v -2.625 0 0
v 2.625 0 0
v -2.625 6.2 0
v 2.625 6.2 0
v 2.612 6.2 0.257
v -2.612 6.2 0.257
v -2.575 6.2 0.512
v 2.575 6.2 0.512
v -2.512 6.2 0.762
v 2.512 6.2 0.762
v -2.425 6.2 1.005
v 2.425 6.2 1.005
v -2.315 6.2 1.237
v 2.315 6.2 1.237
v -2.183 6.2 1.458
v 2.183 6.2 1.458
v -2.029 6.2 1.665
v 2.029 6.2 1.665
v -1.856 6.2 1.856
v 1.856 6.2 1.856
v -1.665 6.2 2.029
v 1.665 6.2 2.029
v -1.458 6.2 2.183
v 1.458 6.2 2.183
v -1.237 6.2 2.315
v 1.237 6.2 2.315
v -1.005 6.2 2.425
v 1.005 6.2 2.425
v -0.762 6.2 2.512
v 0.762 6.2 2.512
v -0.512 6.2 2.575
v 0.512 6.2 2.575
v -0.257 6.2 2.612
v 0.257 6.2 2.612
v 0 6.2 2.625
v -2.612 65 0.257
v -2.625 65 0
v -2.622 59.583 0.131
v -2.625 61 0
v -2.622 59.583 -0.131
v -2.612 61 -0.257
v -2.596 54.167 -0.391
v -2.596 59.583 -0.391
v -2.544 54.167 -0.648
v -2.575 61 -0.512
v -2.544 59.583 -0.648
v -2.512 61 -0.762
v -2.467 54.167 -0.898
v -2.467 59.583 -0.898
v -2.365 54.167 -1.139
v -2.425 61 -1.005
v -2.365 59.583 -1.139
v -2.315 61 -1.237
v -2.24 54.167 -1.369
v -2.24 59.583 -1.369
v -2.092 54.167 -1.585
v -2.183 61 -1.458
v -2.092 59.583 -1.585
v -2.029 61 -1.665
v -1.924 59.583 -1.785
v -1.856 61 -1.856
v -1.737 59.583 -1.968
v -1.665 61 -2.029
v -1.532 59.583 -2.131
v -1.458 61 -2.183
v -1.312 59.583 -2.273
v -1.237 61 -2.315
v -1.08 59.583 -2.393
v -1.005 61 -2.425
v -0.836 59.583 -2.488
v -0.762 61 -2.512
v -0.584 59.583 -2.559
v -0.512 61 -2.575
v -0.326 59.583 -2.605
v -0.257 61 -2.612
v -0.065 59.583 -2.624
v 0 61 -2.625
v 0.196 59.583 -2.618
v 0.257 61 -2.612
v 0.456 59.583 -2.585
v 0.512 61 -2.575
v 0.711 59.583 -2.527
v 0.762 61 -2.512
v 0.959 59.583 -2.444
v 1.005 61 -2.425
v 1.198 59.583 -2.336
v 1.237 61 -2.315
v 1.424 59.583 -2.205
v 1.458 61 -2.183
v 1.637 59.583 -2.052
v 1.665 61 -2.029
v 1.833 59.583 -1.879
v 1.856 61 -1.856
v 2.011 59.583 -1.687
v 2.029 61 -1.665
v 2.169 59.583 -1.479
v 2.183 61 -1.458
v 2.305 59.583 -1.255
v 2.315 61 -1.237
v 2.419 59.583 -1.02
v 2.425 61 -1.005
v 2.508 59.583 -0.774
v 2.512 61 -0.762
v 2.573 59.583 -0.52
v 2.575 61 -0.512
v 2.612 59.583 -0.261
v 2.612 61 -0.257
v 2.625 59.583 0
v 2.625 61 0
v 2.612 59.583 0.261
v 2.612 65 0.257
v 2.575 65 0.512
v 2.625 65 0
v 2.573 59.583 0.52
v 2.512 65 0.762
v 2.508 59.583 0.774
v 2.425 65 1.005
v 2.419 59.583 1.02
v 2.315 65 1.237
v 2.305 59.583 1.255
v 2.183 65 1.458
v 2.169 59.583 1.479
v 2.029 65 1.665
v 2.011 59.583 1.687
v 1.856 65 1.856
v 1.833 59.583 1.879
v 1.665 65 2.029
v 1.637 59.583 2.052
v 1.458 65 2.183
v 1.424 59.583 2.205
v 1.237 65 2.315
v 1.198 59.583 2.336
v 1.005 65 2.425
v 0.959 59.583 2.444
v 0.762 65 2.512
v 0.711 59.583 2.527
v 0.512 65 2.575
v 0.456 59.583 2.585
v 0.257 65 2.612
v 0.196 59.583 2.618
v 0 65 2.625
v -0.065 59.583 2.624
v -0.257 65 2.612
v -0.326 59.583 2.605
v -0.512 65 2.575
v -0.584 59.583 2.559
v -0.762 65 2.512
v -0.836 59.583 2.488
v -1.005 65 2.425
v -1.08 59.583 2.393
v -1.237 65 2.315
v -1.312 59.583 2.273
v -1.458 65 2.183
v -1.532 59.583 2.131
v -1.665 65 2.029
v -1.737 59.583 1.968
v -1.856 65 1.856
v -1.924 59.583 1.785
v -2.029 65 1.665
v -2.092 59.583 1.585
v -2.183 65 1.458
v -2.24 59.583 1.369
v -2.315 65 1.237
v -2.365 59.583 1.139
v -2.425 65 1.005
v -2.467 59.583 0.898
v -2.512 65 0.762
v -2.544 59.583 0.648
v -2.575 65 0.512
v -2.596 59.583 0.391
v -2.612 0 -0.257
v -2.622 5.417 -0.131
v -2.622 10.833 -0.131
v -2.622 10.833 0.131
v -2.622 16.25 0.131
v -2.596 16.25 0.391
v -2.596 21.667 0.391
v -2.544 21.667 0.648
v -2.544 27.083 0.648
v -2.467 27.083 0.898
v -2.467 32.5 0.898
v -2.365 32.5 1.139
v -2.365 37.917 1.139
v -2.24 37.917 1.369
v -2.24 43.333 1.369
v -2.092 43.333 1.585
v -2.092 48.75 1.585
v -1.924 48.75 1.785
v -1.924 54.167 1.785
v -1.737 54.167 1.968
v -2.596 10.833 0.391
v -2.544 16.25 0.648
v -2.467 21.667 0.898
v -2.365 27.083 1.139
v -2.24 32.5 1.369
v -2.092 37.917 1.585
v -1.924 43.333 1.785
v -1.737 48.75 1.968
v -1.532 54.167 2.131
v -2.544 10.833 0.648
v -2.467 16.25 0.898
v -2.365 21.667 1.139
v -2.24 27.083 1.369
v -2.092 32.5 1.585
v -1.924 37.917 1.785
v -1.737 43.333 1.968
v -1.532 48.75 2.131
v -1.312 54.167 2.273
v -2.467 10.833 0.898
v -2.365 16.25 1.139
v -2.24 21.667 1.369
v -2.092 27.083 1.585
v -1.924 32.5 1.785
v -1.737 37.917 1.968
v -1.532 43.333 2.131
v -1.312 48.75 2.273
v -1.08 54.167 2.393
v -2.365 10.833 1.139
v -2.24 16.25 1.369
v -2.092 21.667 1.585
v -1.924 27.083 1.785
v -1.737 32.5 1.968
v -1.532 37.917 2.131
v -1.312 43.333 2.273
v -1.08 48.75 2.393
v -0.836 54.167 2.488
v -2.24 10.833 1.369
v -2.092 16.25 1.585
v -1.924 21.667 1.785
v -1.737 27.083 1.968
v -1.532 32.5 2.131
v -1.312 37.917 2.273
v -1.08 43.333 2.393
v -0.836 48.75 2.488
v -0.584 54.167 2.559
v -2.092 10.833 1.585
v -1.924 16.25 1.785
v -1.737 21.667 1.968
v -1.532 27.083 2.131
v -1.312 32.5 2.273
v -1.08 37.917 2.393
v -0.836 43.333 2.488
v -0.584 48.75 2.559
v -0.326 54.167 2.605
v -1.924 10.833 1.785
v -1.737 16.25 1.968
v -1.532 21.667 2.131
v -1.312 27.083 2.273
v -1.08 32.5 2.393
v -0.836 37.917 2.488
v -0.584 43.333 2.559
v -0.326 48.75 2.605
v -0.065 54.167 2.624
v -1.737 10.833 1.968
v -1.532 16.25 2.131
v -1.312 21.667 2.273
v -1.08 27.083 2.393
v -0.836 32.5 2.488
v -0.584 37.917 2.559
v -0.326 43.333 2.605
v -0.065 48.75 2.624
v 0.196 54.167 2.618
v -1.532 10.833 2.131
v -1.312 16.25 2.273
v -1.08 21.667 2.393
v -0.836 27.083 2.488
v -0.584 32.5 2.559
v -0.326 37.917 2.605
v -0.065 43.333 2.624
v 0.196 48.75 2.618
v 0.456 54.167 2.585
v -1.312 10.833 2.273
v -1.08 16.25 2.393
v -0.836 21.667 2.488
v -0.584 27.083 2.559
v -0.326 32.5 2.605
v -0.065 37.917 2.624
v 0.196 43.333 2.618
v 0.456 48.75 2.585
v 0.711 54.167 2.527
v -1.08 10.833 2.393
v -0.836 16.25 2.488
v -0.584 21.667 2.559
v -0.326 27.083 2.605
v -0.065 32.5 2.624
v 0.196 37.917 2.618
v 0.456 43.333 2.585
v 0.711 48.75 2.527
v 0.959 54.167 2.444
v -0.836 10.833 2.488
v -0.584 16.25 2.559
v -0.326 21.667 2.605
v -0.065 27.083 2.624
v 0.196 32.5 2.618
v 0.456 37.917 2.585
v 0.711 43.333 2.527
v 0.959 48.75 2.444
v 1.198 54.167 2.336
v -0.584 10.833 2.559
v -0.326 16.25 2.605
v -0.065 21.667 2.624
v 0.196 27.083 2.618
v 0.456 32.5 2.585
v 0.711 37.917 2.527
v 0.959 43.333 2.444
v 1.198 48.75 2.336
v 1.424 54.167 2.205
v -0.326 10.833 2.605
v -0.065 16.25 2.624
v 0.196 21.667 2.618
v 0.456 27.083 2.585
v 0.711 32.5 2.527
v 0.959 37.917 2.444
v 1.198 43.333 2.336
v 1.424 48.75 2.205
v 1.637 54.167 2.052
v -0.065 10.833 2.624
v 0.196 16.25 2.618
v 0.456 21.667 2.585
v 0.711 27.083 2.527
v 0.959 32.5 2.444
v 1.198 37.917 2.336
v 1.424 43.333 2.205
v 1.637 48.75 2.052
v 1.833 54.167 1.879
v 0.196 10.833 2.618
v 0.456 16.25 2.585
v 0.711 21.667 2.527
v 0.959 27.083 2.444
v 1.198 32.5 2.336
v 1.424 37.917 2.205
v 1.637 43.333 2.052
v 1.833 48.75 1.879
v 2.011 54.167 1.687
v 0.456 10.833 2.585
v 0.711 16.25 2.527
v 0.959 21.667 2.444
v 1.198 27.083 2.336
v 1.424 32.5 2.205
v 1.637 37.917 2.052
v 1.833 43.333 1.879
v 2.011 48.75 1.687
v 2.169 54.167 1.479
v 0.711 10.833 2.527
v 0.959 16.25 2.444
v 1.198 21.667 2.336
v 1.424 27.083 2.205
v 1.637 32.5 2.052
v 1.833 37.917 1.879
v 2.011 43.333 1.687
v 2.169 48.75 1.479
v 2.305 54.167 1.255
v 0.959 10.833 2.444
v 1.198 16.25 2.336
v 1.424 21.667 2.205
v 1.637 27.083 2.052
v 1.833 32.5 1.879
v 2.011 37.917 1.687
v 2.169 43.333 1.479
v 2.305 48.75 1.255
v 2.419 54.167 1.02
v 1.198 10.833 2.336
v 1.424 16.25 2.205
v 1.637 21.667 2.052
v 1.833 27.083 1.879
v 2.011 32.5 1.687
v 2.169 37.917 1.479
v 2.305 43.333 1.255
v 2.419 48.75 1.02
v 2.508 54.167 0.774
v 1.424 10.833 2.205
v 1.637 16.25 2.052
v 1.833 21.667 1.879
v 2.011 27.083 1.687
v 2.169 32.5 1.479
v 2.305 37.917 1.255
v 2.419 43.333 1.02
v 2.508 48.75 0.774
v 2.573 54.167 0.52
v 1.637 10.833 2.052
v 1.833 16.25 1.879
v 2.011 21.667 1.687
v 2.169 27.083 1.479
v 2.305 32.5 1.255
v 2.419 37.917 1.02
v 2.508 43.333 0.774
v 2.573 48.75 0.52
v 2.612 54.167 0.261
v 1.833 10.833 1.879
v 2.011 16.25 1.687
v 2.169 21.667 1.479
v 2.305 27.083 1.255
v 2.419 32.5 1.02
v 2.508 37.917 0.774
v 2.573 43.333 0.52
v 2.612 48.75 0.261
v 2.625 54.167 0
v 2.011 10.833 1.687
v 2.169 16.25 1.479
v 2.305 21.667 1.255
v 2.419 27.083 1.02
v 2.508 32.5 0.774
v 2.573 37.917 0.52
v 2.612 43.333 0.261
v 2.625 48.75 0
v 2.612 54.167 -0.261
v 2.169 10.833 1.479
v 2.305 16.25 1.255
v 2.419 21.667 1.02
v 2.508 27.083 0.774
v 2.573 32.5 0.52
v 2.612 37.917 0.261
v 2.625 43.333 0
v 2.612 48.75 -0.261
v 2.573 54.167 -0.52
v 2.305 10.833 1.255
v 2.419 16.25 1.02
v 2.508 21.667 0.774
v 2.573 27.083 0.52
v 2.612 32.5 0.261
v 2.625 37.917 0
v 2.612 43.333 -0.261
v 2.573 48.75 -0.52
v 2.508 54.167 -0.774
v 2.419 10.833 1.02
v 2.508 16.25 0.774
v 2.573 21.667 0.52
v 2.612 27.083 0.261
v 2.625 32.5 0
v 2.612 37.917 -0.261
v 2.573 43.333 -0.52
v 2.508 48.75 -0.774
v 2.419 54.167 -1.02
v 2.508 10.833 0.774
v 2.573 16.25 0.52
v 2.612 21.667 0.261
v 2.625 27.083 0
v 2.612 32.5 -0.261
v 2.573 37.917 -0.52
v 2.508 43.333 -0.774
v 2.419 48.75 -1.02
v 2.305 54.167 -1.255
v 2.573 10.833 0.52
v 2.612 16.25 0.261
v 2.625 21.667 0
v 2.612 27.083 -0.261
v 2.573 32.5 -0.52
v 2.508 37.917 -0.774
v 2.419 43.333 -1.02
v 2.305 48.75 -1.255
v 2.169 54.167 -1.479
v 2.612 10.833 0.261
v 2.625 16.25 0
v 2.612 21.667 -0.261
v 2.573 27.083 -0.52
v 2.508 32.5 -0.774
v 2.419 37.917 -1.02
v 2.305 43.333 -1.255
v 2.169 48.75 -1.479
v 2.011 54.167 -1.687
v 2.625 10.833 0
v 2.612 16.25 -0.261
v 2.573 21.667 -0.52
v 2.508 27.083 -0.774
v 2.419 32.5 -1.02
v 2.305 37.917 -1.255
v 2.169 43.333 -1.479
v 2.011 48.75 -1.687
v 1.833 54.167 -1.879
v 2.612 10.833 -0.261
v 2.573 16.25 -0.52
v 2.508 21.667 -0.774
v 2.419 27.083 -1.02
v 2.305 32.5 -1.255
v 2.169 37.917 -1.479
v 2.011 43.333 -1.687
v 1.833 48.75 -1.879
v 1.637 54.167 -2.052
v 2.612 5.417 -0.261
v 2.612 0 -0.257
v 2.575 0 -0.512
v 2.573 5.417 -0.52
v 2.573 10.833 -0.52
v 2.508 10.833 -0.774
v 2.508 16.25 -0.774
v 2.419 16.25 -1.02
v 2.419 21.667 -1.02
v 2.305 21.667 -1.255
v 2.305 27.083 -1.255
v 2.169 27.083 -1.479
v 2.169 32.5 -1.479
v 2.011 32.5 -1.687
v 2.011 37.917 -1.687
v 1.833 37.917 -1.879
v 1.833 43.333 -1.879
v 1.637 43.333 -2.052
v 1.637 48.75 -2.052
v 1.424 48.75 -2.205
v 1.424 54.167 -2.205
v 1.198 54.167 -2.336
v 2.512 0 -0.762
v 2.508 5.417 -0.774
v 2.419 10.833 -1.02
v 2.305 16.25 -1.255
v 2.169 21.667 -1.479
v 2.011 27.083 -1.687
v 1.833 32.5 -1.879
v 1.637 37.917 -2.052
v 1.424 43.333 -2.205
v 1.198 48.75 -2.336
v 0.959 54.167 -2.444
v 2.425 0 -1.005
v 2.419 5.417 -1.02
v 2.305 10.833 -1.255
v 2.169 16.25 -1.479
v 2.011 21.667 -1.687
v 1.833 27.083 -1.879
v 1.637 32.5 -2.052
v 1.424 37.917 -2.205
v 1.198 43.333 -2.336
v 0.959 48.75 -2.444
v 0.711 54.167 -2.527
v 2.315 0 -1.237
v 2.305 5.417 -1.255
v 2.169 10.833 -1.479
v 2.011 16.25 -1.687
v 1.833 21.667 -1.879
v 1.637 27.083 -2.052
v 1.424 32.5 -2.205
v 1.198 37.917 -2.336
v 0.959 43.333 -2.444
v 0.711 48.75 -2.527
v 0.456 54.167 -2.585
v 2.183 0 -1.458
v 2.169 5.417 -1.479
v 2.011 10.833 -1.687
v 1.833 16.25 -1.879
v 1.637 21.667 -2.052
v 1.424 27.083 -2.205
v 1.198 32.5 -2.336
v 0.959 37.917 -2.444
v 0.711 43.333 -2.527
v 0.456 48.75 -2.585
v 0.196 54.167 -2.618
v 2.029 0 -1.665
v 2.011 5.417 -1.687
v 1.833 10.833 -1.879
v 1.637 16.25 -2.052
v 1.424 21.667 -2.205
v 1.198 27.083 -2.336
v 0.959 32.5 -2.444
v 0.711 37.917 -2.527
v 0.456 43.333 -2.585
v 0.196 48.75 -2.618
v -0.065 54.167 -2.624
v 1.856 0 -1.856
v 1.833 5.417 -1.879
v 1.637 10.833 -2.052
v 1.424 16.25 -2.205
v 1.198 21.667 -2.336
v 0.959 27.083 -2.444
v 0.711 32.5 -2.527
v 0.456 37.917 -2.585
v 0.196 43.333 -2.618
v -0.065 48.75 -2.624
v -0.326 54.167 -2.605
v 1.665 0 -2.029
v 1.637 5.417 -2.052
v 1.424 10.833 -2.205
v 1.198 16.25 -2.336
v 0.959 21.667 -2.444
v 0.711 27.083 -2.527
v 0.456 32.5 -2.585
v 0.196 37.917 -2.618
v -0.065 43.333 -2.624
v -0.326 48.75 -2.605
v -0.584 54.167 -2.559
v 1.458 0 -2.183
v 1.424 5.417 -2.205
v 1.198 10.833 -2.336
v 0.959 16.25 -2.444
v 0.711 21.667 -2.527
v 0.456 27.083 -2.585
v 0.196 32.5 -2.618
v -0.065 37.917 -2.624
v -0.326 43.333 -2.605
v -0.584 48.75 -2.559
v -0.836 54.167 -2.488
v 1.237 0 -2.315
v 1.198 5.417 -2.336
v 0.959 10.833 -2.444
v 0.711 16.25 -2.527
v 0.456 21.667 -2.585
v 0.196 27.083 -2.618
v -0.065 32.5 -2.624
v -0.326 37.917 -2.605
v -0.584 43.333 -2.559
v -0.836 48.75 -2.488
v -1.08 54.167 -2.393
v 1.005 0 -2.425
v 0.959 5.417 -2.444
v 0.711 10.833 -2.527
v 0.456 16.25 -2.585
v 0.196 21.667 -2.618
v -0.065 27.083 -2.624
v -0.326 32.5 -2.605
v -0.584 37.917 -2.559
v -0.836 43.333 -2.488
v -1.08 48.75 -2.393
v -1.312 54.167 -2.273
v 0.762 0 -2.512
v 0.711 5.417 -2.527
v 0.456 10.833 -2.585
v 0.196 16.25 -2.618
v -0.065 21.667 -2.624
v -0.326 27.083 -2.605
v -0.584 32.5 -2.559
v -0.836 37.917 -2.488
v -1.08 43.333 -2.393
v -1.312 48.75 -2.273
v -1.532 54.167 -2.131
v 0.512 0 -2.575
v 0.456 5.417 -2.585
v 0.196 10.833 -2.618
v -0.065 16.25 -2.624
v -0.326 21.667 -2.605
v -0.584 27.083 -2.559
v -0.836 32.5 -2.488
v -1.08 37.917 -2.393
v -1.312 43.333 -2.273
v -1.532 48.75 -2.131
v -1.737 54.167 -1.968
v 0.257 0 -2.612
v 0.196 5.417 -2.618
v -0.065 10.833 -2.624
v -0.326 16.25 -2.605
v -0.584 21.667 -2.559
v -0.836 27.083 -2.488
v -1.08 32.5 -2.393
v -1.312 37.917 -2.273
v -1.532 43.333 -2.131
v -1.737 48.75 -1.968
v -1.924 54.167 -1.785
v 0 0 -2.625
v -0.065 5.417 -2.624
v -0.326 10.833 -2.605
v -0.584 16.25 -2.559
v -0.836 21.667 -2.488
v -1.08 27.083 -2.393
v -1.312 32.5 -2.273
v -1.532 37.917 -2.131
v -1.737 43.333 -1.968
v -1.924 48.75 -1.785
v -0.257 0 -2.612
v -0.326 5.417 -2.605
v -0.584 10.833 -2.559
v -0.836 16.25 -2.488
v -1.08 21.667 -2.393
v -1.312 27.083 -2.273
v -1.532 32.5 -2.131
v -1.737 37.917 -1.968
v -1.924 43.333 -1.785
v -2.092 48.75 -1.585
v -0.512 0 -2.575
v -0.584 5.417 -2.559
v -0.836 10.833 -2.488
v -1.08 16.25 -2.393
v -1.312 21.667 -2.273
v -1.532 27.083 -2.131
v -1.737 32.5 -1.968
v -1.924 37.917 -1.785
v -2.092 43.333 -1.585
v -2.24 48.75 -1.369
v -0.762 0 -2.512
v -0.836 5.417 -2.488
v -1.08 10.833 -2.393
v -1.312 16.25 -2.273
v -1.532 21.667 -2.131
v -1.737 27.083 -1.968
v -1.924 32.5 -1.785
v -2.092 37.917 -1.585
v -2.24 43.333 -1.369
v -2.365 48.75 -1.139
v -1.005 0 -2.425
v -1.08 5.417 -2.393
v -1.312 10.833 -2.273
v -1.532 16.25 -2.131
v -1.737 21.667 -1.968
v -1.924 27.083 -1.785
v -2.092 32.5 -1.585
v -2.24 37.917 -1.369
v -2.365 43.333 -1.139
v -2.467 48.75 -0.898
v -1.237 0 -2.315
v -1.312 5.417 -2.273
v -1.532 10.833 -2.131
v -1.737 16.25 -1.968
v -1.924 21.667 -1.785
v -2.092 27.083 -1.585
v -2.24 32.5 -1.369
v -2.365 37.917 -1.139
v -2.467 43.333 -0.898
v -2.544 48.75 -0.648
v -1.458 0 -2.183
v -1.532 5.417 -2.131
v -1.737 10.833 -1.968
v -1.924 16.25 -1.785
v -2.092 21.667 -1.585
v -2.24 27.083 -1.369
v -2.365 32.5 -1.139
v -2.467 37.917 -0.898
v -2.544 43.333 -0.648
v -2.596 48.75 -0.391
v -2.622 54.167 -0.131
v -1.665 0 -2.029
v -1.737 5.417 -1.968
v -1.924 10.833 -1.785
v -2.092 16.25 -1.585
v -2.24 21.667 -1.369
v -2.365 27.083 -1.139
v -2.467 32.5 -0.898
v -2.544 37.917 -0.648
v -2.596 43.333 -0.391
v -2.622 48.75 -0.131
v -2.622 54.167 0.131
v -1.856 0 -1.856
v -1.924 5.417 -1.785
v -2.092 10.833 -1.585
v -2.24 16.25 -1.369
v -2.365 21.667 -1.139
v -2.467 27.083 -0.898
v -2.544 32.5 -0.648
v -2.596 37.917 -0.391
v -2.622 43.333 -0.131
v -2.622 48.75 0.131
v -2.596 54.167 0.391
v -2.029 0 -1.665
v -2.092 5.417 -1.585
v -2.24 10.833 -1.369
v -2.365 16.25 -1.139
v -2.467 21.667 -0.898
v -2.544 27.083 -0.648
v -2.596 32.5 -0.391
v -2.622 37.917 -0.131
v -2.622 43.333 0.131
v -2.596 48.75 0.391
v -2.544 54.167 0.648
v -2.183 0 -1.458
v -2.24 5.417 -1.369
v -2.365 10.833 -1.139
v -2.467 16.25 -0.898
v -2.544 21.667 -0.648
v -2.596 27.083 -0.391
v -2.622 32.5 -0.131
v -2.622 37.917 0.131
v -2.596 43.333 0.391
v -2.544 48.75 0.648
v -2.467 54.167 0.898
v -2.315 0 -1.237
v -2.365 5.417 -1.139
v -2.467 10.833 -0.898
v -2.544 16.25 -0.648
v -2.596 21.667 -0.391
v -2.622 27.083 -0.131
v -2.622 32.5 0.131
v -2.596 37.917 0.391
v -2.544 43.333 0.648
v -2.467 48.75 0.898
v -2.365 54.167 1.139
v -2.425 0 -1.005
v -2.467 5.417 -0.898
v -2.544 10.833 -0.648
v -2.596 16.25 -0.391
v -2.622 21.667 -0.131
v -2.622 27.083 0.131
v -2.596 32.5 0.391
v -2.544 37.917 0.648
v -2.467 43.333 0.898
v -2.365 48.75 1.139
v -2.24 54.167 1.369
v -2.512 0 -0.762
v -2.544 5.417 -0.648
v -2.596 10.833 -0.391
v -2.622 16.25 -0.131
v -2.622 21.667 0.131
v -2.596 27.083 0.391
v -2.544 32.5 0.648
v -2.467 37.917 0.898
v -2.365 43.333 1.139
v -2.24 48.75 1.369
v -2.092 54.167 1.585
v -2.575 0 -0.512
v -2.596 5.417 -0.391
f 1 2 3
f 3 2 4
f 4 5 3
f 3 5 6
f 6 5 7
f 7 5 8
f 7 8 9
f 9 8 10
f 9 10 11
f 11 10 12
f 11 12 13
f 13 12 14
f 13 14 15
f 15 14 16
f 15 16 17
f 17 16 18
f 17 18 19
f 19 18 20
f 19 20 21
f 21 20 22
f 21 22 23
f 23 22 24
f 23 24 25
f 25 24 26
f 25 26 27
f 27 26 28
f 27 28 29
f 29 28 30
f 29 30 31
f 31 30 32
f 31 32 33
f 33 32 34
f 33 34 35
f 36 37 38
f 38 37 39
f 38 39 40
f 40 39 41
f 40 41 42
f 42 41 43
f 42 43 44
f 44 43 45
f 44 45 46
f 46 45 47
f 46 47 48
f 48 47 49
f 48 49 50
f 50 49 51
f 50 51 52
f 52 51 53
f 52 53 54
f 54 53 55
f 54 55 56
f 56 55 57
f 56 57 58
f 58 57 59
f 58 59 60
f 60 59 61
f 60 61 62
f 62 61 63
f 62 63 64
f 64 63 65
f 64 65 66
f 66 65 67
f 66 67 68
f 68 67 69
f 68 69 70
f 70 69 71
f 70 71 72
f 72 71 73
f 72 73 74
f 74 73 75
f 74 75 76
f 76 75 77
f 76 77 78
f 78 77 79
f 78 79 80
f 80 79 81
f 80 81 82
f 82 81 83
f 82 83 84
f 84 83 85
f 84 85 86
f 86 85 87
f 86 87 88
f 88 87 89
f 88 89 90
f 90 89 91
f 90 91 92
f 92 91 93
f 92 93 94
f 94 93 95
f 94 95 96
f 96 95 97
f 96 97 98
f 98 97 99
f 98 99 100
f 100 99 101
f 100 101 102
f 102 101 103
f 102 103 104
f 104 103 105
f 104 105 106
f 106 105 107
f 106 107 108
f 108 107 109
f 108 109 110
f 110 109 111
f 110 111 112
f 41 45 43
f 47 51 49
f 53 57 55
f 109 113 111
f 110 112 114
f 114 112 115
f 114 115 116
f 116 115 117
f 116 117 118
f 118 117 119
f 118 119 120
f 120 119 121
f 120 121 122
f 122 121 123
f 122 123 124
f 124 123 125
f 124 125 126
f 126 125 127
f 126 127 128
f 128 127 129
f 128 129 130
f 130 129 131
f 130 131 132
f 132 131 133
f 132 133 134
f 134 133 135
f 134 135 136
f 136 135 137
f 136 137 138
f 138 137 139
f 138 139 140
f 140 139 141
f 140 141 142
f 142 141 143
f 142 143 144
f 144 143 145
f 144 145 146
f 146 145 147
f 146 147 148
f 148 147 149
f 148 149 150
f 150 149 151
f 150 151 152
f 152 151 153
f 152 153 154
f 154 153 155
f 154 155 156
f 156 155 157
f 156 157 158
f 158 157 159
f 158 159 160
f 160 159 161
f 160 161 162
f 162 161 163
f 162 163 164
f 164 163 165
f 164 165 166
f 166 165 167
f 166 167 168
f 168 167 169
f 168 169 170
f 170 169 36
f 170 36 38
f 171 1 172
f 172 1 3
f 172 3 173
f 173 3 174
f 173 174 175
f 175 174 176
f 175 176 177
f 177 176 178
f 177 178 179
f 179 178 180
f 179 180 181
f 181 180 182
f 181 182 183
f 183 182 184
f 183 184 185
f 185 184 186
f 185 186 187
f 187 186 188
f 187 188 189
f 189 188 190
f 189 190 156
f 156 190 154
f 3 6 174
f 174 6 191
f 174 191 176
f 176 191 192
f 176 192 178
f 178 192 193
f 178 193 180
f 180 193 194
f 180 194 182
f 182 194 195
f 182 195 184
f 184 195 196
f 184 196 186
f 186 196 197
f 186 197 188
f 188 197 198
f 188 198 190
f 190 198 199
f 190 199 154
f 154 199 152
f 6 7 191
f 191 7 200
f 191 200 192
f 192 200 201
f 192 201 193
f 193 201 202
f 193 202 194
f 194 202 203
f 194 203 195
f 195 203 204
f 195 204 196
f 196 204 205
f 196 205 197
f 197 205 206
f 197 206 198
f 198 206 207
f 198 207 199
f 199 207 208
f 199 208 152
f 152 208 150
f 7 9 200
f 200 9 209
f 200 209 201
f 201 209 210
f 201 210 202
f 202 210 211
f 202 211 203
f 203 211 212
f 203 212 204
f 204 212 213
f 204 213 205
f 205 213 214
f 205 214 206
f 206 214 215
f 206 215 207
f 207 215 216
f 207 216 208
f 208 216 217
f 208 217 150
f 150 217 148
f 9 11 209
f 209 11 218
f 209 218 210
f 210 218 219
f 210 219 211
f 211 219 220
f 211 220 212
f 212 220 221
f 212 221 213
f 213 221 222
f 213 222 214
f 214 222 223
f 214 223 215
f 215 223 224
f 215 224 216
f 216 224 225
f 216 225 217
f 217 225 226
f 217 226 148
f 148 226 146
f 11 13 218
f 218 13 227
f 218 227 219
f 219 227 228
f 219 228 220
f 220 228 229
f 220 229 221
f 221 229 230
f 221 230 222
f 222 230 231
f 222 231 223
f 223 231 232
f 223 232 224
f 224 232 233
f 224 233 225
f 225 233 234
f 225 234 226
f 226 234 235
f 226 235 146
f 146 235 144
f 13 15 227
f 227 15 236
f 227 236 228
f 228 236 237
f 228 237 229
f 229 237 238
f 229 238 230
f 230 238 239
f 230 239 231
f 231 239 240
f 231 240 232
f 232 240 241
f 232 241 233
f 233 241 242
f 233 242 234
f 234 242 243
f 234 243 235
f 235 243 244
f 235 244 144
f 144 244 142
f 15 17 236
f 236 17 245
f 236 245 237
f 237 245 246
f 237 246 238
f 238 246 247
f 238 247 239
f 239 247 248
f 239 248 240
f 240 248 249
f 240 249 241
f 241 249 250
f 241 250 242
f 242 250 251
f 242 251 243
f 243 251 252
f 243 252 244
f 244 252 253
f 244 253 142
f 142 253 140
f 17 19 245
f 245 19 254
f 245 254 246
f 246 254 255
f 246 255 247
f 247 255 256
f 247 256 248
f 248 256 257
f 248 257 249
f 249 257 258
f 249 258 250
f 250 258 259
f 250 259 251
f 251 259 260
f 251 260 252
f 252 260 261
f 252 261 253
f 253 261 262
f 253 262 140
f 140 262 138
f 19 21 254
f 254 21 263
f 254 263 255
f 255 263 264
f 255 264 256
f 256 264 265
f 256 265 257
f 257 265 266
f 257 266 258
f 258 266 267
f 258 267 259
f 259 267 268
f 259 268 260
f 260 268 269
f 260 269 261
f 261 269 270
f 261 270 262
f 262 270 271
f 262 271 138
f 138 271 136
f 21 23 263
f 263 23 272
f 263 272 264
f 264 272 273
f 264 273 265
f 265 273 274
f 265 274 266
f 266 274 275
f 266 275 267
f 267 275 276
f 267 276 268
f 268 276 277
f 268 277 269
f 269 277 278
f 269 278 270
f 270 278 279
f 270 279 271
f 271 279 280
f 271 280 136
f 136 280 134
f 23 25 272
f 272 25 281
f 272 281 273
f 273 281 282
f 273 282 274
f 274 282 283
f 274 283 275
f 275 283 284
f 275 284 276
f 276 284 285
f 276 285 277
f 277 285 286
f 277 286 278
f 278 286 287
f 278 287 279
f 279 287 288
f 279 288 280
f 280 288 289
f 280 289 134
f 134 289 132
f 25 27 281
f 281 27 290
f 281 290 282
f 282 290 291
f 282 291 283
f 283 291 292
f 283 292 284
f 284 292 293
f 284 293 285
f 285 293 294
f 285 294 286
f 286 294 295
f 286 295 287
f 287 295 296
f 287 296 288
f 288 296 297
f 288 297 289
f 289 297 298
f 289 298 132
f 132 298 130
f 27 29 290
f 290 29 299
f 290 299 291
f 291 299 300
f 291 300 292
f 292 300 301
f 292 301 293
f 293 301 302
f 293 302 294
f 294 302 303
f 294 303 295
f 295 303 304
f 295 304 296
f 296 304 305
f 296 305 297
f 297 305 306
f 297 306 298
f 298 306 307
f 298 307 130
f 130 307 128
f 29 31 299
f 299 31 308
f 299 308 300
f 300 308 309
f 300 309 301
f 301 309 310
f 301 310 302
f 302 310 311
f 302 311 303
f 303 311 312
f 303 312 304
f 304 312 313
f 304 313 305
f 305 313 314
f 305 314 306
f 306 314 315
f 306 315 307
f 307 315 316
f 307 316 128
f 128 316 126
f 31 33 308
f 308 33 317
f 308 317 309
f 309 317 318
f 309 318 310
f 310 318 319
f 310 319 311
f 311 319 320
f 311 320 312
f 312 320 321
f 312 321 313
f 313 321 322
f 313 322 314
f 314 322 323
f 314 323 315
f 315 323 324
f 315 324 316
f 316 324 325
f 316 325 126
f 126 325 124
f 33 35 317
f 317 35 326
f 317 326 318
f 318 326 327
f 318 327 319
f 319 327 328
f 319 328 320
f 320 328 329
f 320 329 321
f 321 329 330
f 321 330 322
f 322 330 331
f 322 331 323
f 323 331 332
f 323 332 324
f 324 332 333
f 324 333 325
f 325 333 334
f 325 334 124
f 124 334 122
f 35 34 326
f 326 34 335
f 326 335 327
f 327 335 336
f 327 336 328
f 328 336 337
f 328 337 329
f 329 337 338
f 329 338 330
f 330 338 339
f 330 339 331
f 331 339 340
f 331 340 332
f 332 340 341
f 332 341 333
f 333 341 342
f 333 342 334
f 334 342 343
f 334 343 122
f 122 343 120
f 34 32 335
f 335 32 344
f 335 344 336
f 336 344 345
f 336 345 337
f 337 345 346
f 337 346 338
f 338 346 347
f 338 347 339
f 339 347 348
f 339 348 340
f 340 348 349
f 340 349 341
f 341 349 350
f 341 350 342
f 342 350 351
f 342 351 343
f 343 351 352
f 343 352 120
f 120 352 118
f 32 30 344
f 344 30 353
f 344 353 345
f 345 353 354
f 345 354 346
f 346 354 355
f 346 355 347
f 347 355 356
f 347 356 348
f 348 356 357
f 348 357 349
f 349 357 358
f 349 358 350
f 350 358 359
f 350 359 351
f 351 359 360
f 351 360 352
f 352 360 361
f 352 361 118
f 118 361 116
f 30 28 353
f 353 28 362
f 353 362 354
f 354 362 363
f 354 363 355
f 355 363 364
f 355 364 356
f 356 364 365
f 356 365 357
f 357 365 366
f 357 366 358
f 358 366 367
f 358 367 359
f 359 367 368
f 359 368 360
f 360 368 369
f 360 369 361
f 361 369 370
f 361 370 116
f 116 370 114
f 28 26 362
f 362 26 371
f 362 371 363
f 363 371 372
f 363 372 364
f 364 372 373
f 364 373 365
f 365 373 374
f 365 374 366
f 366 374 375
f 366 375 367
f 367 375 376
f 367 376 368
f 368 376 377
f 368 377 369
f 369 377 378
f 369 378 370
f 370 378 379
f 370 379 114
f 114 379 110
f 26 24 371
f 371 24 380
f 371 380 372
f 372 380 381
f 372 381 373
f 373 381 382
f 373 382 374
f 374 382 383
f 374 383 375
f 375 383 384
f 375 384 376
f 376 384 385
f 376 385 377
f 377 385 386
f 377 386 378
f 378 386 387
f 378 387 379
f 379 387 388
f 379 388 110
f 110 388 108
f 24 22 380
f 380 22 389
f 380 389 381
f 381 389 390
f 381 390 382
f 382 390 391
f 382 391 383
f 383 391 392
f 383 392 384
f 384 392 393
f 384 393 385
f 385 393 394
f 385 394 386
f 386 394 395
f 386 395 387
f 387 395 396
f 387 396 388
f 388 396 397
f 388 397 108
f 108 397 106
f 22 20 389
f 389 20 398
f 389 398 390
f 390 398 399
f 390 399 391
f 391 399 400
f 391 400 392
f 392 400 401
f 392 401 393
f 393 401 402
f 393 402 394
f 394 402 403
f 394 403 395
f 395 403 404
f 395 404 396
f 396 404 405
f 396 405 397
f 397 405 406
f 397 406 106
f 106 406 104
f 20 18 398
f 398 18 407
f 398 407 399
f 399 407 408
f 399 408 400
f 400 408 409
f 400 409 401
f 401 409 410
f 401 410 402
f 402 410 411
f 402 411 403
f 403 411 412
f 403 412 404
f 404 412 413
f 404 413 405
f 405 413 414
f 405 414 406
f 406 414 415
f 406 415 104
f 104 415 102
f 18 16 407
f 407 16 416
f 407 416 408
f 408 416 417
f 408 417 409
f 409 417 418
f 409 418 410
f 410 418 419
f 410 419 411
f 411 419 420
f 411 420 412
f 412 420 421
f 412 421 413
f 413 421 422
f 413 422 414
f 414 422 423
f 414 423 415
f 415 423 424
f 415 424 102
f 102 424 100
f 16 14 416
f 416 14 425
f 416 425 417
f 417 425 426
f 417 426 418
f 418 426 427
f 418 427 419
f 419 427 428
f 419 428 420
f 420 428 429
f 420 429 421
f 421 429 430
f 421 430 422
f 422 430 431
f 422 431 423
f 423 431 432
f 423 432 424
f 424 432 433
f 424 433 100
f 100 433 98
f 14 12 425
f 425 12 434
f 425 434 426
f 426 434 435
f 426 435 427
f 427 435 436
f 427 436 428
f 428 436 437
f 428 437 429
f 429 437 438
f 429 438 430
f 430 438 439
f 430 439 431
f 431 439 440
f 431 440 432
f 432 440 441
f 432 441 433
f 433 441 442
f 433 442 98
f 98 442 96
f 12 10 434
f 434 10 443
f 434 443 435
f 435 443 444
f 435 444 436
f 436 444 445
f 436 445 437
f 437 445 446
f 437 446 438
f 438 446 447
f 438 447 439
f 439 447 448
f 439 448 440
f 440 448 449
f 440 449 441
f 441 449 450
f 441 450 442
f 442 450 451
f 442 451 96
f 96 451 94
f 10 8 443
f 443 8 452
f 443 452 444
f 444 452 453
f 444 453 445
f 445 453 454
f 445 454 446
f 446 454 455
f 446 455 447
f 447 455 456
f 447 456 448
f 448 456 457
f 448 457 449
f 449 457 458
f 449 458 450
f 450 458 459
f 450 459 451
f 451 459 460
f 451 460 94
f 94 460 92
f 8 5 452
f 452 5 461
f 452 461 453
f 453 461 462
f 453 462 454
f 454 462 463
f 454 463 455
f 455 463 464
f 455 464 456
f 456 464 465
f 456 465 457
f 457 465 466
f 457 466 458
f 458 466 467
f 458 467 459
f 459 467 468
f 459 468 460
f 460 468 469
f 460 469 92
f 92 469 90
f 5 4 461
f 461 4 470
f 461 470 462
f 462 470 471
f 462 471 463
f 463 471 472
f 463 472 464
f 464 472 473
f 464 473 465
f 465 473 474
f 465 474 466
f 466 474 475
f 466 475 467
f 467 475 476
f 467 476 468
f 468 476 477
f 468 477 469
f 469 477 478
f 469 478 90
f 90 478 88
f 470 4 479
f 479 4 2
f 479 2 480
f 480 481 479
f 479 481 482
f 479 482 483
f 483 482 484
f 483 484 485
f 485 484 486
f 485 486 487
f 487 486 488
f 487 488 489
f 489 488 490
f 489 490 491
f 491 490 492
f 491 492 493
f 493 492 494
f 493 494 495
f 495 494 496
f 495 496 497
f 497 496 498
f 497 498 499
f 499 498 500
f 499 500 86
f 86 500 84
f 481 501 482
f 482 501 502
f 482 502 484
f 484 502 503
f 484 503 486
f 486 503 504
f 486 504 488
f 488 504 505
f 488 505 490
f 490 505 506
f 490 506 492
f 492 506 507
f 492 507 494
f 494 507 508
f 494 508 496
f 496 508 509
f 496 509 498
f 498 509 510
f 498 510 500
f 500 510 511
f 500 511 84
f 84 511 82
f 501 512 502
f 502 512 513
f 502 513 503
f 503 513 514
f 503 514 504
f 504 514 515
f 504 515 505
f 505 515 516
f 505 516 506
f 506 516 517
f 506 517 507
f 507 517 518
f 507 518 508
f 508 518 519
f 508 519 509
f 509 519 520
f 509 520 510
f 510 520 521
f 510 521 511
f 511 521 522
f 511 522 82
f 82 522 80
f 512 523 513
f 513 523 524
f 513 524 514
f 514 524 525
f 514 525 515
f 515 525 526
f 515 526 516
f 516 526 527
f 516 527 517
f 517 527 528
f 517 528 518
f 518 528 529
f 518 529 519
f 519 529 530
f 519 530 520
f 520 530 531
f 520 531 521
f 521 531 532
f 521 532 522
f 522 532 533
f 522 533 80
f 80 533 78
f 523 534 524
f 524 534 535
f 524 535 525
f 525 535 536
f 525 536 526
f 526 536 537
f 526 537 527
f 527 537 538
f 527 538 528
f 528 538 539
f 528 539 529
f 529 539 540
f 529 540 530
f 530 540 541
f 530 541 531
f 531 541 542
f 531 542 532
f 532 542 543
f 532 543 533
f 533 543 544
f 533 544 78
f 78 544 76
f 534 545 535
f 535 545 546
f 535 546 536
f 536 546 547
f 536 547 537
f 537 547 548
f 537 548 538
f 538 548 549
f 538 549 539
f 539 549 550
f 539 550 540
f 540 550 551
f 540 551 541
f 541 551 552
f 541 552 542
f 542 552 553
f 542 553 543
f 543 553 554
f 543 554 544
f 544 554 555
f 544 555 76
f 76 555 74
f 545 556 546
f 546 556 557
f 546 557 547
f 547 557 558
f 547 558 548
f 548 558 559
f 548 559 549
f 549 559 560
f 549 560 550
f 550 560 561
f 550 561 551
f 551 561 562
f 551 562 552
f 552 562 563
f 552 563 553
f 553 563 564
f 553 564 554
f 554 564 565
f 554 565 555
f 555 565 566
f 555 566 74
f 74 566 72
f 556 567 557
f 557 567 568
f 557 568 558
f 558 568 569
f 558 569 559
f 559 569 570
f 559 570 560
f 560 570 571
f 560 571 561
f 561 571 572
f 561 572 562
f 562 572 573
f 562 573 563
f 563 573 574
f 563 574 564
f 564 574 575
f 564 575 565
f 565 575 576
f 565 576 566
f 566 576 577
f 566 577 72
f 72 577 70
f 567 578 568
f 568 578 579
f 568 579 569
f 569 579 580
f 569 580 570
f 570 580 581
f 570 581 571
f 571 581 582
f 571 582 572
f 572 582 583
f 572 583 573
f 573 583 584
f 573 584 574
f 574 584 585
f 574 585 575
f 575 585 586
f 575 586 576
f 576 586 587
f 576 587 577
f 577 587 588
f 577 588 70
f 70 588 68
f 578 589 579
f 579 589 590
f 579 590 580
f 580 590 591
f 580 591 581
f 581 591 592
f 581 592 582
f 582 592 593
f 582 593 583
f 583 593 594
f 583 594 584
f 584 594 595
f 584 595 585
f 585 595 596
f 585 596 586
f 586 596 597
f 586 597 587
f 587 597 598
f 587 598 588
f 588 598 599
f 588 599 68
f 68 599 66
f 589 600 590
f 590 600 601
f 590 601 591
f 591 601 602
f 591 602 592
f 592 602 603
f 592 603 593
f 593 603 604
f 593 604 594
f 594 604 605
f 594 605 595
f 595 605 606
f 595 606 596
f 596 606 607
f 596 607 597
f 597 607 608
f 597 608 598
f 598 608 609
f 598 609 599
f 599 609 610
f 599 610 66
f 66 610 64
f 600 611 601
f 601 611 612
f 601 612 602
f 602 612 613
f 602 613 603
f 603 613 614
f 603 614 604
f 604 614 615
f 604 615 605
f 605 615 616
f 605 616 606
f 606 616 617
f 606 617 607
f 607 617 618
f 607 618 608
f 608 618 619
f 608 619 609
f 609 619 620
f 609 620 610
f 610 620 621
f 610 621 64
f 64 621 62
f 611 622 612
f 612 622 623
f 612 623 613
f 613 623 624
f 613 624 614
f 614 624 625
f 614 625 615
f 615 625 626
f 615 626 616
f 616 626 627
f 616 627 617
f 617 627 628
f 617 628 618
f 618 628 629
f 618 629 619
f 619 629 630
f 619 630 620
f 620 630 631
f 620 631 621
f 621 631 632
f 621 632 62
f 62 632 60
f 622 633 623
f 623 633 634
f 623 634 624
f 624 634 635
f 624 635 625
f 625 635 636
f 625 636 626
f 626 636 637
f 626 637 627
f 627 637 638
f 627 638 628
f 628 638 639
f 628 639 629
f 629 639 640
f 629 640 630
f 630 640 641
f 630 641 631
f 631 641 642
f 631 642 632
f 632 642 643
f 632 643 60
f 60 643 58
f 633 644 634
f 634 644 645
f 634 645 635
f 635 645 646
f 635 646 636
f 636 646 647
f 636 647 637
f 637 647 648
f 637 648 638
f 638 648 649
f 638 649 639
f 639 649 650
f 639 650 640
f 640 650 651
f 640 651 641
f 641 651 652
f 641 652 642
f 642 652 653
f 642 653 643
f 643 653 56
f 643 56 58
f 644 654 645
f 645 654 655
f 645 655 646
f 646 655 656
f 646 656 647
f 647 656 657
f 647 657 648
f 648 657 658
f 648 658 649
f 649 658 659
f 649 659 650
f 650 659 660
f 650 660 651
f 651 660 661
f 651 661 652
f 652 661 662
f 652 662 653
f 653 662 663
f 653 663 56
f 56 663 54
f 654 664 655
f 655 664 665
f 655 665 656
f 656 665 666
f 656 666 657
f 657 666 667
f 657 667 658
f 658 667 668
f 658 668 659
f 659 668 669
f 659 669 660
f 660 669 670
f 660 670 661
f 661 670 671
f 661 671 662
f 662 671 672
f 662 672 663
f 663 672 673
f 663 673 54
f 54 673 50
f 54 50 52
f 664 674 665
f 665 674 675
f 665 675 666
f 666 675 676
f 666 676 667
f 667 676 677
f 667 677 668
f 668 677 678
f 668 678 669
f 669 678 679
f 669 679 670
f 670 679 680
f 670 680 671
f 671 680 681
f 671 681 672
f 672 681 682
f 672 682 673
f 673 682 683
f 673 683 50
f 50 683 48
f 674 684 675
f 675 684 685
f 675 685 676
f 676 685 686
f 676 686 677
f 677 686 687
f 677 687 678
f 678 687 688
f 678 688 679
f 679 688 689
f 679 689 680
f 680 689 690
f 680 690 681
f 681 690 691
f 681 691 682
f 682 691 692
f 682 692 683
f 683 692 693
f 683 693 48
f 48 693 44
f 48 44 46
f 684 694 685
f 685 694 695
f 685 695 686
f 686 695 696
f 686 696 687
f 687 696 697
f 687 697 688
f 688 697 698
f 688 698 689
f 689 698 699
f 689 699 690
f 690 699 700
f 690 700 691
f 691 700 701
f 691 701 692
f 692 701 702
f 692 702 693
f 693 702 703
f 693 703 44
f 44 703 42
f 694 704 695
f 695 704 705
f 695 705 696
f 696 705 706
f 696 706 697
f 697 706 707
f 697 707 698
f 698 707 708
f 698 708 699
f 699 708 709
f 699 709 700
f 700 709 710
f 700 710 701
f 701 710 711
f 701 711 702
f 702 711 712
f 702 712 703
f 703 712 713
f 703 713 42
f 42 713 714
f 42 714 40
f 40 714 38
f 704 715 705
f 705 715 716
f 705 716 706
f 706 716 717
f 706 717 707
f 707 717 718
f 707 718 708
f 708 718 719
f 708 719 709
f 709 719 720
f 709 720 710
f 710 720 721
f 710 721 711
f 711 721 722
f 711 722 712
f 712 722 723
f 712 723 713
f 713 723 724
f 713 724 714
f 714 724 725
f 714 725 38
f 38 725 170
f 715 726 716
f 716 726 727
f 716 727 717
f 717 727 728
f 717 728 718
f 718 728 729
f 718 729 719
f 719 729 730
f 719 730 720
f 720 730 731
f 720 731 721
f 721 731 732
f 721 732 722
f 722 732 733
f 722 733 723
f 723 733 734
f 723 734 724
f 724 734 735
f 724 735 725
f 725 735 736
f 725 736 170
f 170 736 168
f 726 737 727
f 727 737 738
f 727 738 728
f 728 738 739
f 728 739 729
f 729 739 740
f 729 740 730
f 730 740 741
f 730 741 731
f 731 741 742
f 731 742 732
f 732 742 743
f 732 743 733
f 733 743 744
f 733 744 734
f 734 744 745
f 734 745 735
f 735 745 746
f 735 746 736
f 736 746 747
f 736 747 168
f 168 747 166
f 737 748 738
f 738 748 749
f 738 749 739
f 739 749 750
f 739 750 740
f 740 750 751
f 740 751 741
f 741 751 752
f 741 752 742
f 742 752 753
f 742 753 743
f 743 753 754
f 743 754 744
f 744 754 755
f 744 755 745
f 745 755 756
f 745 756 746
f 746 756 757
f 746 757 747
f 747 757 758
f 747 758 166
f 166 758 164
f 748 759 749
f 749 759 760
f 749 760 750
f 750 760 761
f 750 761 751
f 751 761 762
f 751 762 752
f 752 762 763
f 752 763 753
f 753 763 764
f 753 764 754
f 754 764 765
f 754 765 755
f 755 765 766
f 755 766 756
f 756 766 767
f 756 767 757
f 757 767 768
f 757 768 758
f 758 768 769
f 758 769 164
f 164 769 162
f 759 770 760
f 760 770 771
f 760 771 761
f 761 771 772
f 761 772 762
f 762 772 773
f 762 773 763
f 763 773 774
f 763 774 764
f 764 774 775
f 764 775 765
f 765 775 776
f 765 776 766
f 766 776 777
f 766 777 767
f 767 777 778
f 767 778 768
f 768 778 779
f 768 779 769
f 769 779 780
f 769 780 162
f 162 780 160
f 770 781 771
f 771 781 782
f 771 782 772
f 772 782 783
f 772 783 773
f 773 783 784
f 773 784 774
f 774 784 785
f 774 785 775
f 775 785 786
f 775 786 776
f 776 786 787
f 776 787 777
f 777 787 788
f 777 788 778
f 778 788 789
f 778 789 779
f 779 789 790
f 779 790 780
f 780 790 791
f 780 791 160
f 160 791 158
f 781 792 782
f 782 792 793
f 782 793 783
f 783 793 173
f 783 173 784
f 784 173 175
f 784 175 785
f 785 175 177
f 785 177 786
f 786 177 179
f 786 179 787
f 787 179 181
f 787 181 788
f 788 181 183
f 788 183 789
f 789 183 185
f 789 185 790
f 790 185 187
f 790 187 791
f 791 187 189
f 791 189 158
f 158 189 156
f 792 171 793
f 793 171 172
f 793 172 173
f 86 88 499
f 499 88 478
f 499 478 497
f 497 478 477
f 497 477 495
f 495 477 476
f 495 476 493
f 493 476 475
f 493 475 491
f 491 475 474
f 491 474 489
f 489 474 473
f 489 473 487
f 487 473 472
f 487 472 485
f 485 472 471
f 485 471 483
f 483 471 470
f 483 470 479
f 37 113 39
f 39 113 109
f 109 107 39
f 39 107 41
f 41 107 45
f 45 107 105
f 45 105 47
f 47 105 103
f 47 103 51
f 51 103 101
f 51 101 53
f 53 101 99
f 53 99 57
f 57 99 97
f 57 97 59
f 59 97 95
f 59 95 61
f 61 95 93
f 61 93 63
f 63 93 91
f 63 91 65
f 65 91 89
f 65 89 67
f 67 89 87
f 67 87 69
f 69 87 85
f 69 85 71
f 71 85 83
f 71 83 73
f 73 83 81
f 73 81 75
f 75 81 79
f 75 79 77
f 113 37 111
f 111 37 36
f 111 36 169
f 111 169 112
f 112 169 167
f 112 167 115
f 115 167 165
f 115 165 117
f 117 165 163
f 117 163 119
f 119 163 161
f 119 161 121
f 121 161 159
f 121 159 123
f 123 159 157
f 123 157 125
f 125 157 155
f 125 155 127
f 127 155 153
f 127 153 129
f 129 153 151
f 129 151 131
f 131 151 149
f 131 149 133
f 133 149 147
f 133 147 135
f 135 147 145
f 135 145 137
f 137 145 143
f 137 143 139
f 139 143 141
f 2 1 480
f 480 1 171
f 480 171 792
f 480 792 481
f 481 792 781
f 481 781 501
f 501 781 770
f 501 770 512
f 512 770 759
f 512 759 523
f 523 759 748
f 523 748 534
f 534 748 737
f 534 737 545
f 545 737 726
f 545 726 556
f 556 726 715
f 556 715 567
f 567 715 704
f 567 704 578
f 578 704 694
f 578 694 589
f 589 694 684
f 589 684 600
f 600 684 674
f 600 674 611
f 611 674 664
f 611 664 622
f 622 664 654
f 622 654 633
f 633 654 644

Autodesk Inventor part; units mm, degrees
ref_plane "YZ Plane" through (0, 0, 0) normal (1, 0, 0) x (0, 1, 0)
ref_plane "XZ Plane" through (0, 0, 0) normal (0, 1, 0) x (-1, 0, 0)
ref_plane "XY Plane" through (0, 0, 0) normal (0, 0, 1) x (1, 0, 0)
sketch "Sketch1" plane through (0, 0, 0) normal (0, 1, 0) x (-1, 0, 0)
  circle A0 centre (0, 0) radius 2.625
  dimension "d0" = 5.25
extrude "Extrusion1" add sketch "Sketch1" along normal blind 65
sketch "Sketch2" plane through (0, 65, 0) normal (0, 1, 0) x (1, 0, 0)
  circle A0 centre (0, 0) radius 2.625 projected
  line L0 (-2.625, 0) -> (2.625, 0)
  arc A1 (2.625, 0) -> (-2.625, 0) centre (0, 0) ccw
extrude "Extrusion2" cut sketch "Sketch2" against normal blind 4 contours L0 A0 picked at (0.6549, 0.5802)
sketch "Sketch3" plane through (0, 0, 0) normal (0, -1, 0) x (1, 0, 0)
  arc A0 (2.625, 0) -> (-2.625, 0) centre (0, 0) ccw projected
  line L0 (2.625, 0) -> (-2.625, 0) projected
  line L1 (2.625, 0) -> (-2.625, 0)
  arc A1 (2.625, 0) -> (-2.625, 0) centre (0, 0) ccw
extrude "Extrusion3" cut sketch "Sketch3" against normal blind 6.2
properties part number "Twist_Rod"
